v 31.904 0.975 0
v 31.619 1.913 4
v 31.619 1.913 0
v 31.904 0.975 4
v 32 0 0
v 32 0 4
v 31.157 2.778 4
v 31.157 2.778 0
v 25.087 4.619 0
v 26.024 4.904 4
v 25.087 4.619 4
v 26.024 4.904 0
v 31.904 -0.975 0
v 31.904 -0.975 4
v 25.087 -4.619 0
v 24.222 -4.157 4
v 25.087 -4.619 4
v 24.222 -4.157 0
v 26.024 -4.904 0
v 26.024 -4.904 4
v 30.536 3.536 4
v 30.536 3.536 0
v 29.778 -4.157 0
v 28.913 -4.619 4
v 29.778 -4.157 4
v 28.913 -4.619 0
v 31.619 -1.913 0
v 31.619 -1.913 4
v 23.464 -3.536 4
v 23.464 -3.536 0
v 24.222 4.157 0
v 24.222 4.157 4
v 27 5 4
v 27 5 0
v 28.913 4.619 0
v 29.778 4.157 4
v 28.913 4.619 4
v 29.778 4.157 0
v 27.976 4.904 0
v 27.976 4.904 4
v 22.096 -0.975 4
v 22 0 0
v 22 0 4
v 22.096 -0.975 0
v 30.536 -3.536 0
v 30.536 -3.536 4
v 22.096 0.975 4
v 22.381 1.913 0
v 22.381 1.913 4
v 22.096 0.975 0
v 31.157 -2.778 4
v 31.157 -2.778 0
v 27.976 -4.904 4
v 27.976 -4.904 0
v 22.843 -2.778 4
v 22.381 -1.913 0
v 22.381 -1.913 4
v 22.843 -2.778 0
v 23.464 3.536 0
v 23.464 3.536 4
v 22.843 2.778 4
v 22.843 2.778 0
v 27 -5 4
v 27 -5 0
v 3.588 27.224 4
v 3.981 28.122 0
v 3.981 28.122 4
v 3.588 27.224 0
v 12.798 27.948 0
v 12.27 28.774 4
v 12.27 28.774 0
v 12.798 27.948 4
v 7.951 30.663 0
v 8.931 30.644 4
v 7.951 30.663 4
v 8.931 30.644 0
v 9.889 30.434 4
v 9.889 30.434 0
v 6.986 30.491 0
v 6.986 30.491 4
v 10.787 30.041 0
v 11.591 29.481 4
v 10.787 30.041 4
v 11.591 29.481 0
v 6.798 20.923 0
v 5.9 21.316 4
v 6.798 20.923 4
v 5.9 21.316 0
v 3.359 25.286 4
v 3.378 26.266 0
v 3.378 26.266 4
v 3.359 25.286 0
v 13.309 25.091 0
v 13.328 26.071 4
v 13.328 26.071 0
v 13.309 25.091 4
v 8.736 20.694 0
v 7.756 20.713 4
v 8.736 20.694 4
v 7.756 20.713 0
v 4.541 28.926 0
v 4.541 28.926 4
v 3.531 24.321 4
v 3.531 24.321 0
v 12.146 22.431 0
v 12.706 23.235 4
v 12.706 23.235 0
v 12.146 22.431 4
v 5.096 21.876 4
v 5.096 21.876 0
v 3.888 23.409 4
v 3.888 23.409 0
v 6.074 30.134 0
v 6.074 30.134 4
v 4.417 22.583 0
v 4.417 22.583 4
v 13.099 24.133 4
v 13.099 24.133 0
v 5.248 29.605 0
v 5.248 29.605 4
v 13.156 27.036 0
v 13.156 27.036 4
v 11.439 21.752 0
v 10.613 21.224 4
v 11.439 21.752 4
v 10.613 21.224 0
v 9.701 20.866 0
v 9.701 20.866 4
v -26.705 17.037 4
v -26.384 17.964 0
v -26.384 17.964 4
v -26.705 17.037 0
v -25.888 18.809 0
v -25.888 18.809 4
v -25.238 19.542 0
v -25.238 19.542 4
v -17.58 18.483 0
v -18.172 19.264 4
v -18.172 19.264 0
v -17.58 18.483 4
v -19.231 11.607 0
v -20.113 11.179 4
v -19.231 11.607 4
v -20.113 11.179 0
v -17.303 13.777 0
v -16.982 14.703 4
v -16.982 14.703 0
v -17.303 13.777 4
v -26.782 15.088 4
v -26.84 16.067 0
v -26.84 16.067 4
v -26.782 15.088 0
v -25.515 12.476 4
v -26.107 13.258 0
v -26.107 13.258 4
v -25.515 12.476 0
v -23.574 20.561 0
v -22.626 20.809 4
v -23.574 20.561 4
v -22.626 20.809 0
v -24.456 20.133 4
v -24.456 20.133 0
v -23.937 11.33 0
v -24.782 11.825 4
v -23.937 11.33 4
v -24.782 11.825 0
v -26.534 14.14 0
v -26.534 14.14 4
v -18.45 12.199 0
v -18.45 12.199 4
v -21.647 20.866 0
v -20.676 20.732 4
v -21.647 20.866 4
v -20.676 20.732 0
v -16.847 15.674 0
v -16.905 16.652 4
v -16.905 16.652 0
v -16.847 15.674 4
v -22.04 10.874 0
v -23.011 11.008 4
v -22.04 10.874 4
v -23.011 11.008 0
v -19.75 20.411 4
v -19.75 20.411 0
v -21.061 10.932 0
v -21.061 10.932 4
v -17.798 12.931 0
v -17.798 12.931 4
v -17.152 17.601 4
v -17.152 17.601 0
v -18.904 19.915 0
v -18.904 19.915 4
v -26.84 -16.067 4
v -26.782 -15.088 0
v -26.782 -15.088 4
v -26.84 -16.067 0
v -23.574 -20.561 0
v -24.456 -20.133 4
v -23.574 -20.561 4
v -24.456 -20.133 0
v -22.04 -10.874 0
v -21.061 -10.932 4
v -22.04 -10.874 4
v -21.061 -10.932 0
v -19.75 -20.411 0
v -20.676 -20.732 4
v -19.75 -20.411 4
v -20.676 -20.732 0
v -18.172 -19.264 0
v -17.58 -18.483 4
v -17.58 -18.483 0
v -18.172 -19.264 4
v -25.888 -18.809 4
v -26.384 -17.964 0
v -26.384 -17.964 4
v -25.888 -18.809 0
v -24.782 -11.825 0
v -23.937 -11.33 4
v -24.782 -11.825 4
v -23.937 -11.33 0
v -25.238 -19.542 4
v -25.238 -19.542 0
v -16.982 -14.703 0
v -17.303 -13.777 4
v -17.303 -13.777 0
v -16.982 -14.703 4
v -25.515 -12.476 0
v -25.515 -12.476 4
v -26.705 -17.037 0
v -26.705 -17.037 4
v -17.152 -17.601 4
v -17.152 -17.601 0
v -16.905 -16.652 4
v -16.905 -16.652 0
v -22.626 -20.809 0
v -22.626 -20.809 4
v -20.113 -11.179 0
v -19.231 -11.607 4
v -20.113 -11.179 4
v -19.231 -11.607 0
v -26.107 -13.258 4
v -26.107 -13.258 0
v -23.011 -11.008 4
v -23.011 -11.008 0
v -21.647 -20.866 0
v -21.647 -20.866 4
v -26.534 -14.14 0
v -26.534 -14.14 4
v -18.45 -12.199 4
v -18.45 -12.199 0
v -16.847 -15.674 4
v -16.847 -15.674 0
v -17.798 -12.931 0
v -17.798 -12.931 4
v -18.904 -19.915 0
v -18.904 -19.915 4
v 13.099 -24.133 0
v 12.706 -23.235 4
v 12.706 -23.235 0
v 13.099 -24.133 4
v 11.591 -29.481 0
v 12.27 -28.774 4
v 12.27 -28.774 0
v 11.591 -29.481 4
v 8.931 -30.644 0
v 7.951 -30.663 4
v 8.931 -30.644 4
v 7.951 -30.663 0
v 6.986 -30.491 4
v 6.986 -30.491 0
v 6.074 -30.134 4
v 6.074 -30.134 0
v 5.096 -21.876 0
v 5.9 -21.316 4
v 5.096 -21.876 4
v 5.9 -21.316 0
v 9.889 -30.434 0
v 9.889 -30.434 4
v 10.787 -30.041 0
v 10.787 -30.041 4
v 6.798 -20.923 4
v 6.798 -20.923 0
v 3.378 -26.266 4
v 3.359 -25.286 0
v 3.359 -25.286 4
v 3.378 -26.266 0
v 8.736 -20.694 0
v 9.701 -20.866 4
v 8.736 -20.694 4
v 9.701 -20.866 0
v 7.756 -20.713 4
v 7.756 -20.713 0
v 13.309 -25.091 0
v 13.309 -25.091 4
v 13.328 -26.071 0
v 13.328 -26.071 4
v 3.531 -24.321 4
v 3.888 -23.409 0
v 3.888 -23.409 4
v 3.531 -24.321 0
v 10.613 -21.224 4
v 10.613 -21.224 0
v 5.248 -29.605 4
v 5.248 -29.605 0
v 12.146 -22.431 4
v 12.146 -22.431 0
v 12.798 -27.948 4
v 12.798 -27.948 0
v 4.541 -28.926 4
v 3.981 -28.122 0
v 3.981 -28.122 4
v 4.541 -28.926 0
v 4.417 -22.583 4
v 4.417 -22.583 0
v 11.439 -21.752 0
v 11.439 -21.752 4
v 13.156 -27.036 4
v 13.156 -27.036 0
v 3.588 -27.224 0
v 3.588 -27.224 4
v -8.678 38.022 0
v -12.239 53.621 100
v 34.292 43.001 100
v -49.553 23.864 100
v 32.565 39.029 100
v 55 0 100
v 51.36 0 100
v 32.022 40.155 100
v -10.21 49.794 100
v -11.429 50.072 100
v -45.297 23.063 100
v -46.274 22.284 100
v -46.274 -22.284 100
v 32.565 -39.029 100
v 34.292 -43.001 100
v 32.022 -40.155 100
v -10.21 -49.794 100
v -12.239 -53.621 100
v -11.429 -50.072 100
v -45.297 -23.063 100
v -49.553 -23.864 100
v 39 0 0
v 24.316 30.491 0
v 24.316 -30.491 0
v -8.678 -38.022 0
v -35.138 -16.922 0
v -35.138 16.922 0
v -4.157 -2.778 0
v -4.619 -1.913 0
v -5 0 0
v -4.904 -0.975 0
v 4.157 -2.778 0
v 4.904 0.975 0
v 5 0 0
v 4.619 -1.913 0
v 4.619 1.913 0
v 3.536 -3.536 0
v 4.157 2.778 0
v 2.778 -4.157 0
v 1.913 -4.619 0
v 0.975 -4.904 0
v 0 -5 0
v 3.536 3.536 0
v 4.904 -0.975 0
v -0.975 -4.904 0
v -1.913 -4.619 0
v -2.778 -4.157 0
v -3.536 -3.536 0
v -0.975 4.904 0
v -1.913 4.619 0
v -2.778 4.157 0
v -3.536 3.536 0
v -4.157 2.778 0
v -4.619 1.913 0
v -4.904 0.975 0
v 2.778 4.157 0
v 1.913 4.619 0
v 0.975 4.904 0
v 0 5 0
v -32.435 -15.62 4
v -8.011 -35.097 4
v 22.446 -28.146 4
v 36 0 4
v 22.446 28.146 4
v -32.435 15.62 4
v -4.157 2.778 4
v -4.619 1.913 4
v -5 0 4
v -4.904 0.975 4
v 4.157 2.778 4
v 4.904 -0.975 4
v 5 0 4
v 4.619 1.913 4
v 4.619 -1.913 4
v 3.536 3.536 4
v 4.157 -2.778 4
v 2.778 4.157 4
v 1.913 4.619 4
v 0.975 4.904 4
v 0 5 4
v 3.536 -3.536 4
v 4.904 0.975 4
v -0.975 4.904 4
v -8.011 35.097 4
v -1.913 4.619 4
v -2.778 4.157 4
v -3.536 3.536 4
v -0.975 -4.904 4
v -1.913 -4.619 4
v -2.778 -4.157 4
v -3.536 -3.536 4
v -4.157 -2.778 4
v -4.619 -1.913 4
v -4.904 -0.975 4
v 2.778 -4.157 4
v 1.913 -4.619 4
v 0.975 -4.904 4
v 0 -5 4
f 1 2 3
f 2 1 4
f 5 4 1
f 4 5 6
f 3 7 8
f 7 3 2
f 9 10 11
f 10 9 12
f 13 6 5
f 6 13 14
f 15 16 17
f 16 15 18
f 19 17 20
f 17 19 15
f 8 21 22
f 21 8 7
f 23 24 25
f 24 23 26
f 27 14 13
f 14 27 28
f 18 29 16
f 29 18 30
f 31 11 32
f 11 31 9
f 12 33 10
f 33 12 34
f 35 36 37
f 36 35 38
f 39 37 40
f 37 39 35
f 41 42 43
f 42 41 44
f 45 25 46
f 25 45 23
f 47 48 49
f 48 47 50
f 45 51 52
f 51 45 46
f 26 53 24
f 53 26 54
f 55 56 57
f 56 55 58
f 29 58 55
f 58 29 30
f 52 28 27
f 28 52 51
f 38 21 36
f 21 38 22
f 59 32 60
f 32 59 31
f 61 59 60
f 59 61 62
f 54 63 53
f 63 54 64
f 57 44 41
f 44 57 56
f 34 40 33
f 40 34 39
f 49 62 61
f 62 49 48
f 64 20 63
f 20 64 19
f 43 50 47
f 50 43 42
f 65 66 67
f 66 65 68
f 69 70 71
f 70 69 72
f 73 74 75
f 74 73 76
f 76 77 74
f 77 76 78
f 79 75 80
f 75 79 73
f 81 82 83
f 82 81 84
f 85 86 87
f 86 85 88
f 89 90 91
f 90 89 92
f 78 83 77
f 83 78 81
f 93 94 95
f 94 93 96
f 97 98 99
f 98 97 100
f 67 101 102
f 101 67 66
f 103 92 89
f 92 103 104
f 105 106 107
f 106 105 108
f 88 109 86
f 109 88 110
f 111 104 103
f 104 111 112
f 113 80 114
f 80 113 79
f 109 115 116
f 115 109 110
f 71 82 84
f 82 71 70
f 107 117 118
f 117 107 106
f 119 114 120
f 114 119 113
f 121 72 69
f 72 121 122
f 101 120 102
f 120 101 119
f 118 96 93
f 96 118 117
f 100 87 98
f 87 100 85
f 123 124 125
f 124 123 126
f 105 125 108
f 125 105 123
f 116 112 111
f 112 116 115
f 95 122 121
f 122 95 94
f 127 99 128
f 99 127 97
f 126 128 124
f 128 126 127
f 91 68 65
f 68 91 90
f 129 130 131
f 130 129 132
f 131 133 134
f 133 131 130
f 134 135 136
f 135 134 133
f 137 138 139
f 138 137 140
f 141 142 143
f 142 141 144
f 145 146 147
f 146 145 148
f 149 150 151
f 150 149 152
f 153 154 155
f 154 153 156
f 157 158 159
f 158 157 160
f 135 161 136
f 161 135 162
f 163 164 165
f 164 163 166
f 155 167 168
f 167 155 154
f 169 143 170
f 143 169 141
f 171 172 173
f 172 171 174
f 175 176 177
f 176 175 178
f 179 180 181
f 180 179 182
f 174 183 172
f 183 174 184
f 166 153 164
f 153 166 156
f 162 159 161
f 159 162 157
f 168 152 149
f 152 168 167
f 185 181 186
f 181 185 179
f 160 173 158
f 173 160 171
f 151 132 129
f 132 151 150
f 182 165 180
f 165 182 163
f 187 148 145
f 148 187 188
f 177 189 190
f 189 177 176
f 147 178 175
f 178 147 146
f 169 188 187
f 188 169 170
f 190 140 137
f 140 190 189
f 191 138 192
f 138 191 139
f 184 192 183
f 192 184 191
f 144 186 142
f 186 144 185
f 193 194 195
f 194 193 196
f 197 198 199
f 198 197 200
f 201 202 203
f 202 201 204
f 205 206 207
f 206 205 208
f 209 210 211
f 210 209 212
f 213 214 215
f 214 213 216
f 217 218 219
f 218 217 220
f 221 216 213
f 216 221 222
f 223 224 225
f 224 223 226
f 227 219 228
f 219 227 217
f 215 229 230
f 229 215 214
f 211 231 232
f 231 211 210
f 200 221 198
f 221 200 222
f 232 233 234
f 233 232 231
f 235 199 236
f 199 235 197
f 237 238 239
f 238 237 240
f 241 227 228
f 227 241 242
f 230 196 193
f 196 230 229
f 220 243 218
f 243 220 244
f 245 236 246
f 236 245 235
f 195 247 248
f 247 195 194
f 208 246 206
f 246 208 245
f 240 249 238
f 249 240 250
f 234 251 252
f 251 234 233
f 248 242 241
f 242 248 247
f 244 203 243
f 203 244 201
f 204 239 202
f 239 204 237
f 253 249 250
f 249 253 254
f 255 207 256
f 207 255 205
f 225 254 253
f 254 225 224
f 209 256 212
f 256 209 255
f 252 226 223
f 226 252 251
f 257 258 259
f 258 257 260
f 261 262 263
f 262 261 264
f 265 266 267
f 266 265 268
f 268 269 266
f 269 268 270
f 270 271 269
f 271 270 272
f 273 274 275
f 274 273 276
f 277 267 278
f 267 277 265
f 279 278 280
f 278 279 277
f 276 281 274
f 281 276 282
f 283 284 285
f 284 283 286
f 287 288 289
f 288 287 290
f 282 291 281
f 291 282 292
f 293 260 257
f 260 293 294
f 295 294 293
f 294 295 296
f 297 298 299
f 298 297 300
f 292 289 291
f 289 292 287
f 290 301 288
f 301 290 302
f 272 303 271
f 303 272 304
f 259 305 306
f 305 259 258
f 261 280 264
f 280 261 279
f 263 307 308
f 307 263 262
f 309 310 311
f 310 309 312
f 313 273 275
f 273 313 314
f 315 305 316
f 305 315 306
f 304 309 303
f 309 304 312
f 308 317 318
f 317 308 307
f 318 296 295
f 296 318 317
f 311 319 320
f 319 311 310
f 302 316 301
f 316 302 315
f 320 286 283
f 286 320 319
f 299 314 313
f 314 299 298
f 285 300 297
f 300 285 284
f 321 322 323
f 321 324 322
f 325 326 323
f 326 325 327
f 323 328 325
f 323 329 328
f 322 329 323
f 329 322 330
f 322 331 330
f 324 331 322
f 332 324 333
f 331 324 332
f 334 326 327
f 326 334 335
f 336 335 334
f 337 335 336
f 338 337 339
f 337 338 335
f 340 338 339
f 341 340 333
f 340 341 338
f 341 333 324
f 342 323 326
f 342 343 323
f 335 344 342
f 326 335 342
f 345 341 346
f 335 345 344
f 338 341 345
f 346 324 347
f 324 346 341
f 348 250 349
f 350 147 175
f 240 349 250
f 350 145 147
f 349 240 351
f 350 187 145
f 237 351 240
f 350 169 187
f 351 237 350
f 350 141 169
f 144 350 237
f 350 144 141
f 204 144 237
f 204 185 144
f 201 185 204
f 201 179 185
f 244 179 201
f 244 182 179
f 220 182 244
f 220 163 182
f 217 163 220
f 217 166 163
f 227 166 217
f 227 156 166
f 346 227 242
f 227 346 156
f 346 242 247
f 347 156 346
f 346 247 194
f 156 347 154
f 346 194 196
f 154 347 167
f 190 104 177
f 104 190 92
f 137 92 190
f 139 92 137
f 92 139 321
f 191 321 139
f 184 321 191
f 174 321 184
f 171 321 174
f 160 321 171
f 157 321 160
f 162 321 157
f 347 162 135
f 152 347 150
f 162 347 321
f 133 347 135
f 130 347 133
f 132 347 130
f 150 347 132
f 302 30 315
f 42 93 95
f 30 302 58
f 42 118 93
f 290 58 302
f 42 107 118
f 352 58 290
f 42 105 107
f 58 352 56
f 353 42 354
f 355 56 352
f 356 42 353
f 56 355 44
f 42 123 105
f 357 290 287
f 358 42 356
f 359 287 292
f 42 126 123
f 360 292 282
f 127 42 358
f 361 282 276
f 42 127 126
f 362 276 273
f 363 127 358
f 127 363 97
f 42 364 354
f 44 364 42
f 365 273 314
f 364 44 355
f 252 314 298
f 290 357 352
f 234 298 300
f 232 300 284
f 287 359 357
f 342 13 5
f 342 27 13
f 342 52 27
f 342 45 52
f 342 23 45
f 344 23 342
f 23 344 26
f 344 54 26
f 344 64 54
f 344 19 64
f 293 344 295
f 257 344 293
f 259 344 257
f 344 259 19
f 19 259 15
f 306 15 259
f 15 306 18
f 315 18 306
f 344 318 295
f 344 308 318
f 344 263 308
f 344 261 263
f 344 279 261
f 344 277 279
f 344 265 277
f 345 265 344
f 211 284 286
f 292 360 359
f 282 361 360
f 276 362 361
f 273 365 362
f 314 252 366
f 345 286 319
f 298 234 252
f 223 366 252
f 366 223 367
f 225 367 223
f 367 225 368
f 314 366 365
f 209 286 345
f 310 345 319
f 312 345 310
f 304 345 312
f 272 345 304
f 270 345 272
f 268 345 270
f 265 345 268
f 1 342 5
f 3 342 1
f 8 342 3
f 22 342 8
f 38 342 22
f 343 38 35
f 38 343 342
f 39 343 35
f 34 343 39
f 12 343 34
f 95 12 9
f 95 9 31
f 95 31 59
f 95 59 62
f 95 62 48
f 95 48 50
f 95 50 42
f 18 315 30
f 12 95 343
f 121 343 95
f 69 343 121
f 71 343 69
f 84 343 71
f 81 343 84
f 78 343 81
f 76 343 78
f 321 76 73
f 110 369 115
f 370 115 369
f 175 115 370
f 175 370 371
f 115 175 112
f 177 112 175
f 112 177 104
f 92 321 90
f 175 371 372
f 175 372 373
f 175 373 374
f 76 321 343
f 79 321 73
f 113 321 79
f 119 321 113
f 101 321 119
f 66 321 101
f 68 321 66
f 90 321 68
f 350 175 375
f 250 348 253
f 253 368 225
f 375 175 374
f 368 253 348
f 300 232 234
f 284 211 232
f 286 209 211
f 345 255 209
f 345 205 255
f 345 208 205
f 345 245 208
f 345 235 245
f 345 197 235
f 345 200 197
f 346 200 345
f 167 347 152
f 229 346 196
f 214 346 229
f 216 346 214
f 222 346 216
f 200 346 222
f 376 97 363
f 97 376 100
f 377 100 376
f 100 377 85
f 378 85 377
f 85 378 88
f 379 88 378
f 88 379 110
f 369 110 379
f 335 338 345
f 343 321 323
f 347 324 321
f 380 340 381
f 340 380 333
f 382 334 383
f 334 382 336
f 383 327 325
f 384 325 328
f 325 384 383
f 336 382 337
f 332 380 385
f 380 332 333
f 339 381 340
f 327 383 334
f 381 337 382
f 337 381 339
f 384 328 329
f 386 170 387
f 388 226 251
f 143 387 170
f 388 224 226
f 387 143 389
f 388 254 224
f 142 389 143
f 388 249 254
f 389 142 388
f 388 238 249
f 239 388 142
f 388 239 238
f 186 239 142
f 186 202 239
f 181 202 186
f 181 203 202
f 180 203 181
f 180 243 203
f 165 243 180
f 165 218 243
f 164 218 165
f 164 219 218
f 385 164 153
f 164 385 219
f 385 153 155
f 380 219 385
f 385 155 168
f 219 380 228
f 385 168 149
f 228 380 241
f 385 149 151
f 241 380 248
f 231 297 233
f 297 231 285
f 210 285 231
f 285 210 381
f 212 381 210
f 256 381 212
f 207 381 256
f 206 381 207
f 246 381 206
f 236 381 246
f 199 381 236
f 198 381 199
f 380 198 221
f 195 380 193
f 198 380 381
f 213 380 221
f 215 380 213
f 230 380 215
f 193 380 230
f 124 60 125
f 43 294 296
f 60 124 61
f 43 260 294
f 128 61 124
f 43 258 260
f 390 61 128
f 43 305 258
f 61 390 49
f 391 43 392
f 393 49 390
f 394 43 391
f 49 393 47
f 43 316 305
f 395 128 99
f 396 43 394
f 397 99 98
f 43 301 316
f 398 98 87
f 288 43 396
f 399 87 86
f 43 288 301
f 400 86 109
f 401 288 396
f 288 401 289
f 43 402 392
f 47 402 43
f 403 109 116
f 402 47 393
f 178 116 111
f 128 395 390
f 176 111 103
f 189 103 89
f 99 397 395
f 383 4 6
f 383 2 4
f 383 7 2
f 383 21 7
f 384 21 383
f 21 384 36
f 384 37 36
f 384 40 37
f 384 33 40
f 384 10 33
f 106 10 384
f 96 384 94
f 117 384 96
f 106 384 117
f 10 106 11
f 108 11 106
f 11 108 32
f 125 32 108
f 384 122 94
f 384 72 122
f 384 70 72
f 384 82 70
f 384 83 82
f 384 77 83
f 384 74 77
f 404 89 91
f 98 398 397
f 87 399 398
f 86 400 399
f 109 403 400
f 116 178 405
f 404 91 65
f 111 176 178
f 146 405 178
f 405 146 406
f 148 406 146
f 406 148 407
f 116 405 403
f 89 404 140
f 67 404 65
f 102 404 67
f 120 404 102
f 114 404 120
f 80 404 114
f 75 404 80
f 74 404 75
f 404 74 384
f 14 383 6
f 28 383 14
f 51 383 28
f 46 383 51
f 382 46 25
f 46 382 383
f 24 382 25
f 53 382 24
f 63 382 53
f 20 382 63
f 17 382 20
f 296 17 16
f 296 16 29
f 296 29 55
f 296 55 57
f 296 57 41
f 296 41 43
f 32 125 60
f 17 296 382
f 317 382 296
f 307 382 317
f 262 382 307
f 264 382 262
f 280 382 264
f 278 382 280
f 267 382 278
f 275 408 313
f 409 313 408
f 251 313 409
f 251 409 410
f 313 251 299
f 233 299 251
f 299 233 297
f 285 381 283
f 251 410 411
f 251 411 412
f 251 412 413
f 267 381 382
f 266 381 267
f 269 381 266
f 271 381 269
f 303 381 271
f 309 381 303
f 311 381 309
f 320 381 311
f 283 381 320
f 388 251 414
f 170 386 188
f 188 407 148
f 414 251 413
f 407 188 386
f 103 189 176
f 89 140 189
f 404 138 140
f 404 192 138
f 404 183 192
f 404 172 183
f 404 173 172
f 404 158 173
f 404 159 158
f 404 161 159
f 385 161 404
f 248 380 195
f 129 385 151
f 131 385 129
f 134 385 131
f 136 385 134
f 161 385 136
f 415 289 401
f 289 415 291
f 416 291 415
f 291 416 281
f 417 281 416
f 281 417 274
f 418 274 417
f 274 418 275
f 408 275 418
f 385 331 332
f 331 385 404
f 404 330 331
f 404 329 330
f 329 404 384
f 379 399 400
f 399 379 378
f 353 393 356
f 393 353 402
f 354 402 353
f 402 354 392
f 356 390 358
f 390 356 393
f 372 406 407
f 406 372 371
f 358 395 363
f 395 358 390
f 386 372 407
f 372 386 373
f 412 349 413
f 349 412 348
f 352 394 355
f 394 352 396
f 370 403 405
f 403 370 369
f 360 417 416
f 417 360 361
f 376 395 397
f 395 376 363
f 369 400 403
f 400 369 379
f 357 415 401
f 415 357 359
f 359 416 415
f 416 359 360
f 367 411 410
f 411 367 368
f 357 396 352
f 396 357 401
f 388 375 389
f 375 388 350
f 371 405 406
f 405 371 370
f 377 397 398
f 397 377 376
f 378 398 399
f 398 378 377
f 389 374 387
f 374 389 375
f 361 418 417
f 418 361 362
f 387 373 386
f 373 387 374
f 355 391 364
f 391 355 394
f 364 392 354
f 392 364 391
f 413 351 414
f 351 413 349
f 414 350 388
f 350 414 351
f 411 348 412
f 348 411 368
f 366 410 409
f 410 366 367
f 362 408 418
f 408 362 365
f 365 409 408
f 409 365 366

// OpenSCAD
// ============================================================
// Y7 — Faceted outdoor planter (tuned for ASA, UV/weather resistant)
// Low-poly geometric pot with drainage holes. Print flat, no supports
// (or vase mode). Units: millimetres.
// ============================================================

top_d    = 110;   // top outer diameter
bot_d    = 78;    // bottom outer diameter
H        = 100;   // height
wall     = 3.0;   // wall thickness
floor_t  = 4.0;   // floor thickness
facets   = 7;     // number of vertical facets (heptagon look)
drain_n  = 5;     // drainage holes in the floor
drain_r  = 5;     // drainage hole radius
$fn_hole = 32;
eps      = 0.05;

module faceted_solid(dtop, dbot, h) {
    // prism with `facets` sides, tapered
    cylinder(h = h, r1 = dbot/2, r2 = dtop/2, $fn = facets);
}

module planter() {
    difference() {
        // outer faceted body
        faceted_solid(top_d, bot_d, H);
        // hollow interior (leaves floor + wall)
        translate([0, 0, floor_t])
            faceted_solid(top_d - 2*wall, bot_d - 2*wall, H);
        // drainage holes in the floor
        for (i = [0 : drain_n - 1])
            rotate([0, 0, i * 360 / drain_n])
                translate([bot_d/2 - wall - drain_r - 4, 0, -eps])
                    cylinder(h = floor_t + 2*eps, r = drain_r, $fn = $fn_hole);
        // center drain hole
        translate([0, 0, -eps]) cylinder(h = floor_t + 2*eps, r = drain_r, $fn = $fn_hole);
    }
}

planter();
